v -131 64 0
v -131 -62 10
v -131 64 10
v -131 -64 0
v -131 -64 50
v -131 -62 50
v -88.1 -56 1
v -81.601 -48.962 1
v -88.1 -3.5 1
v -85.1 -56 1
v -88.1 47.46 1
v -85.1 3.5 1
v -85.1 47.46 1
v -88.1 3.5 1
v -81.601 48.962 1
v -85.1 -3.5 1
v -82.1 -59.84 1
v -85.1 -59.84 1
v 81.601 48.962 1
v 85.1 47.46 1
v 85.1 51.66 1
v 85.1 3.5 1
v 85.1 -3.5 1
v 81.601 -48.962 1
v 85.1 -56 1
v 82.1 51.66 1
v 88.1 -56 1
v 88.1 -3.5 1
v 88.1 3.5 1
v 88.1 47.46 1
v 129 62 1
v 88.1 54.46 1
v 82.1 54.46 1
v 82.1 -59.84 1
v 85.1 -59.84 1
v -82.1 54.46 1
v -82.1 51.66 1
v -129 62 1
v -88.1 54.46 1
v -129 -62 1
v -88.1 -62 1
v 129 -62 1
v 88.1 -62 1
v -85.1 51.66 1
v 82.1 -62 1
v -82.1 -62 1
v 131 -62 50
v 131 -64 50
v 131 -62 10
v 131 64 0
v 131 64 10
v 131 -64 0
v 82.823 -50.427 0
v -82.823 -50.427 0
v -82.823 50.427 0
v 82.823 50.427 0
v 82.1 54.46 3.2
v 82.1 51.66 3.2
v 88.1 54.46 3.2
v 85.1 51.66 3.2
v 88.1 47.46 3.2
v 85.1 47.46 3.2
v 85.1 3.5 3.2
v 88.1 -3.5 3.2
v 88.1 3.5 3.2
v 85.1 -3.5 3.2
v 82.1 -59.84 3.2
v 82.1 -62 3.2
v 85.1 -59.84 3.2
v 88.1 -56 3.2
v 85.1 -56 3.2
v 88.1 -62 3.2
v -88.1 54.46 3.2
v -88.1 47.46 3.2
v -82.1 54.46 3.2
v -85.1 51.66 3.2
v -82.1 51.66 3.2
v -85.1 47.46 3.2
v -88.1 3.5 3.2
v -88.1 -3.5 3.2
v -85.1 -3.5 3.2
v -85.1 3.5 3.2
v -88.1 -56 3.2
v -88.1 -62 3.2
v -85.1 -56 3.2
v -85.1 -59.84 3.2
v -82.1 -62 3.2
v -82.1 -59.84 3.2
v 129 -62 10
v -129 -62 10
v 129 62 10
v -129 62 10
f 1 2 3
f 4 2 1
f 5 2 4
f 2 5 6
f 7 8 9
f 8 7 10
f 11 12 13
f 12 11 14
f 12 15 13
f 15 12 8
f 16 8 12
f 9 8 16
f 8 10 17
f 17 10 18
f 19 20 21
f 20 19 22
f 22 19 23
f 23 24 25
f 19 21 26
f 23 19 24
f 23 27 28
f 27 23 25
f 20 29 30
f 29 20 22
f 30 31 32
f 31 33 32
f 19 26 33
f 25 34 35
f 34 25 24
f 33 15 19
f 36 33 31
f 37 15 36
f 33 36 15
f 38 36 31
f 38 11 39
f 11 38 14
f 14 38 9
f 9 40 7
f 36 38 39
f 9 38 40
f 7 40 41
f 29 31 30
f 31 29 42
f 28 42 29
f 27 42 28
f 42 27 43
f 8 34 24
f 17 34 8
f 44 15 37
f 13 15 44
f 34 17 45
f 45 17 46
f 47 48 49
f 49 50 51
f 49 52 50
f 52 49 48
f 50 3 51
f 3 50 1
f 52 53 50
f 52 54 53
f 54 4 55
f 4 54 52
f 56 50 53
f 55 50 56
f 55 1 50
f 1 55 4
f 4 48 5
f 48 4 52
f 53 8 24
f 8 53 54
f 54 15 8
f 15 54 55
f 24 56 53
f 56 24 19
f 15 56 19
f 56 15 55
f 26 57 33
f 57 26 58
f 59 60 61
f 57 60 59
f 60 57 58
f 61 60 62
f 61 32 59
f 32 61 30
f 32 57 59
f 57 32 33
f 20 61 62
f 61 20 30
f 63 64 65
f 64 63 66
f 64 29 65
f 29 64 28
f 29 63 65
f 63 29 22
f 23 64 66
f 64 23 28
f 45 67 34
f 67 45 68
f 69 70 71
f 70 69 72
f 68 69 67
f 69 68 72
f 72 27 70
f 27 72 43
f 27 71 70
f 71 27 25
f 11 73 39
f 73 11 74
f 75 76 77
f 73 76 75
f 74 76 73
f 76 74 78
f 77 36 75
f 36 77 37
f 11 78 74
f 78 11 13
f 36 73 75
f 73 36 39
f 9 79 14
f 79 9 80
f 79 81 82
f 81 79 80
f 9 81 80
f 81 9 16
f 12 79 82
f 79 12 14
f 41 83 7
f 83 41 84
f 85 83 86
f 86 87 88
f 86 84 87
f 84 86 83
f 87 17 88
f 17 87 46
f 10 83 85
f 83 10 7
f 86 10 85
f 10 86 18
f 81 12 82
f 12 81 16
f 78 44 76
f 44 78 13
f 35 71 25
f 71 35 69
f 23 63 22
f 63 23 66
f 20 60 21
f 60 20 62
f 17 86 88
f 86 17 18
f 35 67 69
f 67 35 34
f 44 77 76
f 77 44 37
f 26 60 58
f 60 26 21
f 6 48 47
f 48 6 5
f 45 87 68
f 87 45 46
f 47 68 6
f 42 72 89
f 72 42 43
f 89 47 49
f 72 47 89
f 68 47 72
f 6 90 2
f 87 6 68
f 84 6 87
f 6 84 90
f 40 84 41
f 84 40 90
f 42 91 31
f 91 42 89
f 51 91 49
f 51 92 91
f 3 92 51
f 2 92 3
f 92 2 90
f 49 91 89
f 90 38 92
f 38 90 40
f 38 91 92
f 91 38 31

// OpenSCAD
//
// ktEPD1
//

gap1 = 0.001;
gap2 = 0.002;
th = 1;
th2 = 2;

waku_x = 262;
waku_y = 128;

disp_x = 163.2;
disp_y = 97.92;

body_x = 170.2;
body_y = 111.5;
body_z = 1.2;
body_d = 2.7;

stand_z = 50;
side_z = 10;

A = 1;


if(A)
{
    // front
    difference()
    {
        translate( [0, 0, th/2] )
        cube( [waku_x, waku_y, th], center=true );
        
        translate( [0, 0, th+gap1] )
        rotate( [180, 0, 0] )
        linear_extrude(height=th+gap2, scale=[1.015,1.03])
        square( [disp_x, disp_y], center=true);
    }
    
    // stay
    difference()
    {
        union()
        {
            translate( [disp_x/2+(body_x-disp_x)/2, disp_y/2+7/2-1.5, th+(body_z+th)/2] )
            cube( [6, 7, body_z+th], center=true );
            translate( [disp_x/2+(body_x-disp_x)/2, 0, th+(body_z+th)/2] )
            cube( [6, 7, body_z+th], center=true );
            translate( [disp_x/2+(body_x-disp_x)/2, -waku_y/2+7/2+th, th+(body_z+th)/2] )
            cube( [6, 7, body_z+th], center=true );

            translate( [-disp_x/2-(body_x-disp_x)/2, disp_y/2+7/2-1.5, th+(body_z+th)/2] )
            cube( [6, 7, body_z+th], center=true );
            translate( [-disp_x/2-(body_x-disp_x)/2, 0, th+(body_z+th)/2] )
            cube( [6, 7, body_z+th], center=true );
            translate( [-disp_x/2-(body_x-disp_x)/2, -waku_y/2+7/2+th, th+(body_z+th)/2] )
            cube( [6, 7, body_z+th], center=true );
        }
        translate( [0, -(body_y/2-disp_y/2-body_d), th+body_z/2] )
        cube( [body_x, body_y, body_z+10], center=true );
    }
    
    // foot
    translate( [0, -waku_y/2+th2/2, stand_z/2] )
    cube( [waku_x, th2, stand_z], center=true );
    
    // side
    translate( [waku_x/2-th2/2, 0, side_z/2] )
    cube( [th2, waku_y, side_z], center=true );
    translate( [-waku_x/2+th2/2, 0, side_z/2] )
    cube( [th2, waku_y, side_z], center=true );
    translate( [0, waku_y/2-th2/2, side_z/2] )
    cube( [waku_x, th2, side_z], center=true );
    
}
